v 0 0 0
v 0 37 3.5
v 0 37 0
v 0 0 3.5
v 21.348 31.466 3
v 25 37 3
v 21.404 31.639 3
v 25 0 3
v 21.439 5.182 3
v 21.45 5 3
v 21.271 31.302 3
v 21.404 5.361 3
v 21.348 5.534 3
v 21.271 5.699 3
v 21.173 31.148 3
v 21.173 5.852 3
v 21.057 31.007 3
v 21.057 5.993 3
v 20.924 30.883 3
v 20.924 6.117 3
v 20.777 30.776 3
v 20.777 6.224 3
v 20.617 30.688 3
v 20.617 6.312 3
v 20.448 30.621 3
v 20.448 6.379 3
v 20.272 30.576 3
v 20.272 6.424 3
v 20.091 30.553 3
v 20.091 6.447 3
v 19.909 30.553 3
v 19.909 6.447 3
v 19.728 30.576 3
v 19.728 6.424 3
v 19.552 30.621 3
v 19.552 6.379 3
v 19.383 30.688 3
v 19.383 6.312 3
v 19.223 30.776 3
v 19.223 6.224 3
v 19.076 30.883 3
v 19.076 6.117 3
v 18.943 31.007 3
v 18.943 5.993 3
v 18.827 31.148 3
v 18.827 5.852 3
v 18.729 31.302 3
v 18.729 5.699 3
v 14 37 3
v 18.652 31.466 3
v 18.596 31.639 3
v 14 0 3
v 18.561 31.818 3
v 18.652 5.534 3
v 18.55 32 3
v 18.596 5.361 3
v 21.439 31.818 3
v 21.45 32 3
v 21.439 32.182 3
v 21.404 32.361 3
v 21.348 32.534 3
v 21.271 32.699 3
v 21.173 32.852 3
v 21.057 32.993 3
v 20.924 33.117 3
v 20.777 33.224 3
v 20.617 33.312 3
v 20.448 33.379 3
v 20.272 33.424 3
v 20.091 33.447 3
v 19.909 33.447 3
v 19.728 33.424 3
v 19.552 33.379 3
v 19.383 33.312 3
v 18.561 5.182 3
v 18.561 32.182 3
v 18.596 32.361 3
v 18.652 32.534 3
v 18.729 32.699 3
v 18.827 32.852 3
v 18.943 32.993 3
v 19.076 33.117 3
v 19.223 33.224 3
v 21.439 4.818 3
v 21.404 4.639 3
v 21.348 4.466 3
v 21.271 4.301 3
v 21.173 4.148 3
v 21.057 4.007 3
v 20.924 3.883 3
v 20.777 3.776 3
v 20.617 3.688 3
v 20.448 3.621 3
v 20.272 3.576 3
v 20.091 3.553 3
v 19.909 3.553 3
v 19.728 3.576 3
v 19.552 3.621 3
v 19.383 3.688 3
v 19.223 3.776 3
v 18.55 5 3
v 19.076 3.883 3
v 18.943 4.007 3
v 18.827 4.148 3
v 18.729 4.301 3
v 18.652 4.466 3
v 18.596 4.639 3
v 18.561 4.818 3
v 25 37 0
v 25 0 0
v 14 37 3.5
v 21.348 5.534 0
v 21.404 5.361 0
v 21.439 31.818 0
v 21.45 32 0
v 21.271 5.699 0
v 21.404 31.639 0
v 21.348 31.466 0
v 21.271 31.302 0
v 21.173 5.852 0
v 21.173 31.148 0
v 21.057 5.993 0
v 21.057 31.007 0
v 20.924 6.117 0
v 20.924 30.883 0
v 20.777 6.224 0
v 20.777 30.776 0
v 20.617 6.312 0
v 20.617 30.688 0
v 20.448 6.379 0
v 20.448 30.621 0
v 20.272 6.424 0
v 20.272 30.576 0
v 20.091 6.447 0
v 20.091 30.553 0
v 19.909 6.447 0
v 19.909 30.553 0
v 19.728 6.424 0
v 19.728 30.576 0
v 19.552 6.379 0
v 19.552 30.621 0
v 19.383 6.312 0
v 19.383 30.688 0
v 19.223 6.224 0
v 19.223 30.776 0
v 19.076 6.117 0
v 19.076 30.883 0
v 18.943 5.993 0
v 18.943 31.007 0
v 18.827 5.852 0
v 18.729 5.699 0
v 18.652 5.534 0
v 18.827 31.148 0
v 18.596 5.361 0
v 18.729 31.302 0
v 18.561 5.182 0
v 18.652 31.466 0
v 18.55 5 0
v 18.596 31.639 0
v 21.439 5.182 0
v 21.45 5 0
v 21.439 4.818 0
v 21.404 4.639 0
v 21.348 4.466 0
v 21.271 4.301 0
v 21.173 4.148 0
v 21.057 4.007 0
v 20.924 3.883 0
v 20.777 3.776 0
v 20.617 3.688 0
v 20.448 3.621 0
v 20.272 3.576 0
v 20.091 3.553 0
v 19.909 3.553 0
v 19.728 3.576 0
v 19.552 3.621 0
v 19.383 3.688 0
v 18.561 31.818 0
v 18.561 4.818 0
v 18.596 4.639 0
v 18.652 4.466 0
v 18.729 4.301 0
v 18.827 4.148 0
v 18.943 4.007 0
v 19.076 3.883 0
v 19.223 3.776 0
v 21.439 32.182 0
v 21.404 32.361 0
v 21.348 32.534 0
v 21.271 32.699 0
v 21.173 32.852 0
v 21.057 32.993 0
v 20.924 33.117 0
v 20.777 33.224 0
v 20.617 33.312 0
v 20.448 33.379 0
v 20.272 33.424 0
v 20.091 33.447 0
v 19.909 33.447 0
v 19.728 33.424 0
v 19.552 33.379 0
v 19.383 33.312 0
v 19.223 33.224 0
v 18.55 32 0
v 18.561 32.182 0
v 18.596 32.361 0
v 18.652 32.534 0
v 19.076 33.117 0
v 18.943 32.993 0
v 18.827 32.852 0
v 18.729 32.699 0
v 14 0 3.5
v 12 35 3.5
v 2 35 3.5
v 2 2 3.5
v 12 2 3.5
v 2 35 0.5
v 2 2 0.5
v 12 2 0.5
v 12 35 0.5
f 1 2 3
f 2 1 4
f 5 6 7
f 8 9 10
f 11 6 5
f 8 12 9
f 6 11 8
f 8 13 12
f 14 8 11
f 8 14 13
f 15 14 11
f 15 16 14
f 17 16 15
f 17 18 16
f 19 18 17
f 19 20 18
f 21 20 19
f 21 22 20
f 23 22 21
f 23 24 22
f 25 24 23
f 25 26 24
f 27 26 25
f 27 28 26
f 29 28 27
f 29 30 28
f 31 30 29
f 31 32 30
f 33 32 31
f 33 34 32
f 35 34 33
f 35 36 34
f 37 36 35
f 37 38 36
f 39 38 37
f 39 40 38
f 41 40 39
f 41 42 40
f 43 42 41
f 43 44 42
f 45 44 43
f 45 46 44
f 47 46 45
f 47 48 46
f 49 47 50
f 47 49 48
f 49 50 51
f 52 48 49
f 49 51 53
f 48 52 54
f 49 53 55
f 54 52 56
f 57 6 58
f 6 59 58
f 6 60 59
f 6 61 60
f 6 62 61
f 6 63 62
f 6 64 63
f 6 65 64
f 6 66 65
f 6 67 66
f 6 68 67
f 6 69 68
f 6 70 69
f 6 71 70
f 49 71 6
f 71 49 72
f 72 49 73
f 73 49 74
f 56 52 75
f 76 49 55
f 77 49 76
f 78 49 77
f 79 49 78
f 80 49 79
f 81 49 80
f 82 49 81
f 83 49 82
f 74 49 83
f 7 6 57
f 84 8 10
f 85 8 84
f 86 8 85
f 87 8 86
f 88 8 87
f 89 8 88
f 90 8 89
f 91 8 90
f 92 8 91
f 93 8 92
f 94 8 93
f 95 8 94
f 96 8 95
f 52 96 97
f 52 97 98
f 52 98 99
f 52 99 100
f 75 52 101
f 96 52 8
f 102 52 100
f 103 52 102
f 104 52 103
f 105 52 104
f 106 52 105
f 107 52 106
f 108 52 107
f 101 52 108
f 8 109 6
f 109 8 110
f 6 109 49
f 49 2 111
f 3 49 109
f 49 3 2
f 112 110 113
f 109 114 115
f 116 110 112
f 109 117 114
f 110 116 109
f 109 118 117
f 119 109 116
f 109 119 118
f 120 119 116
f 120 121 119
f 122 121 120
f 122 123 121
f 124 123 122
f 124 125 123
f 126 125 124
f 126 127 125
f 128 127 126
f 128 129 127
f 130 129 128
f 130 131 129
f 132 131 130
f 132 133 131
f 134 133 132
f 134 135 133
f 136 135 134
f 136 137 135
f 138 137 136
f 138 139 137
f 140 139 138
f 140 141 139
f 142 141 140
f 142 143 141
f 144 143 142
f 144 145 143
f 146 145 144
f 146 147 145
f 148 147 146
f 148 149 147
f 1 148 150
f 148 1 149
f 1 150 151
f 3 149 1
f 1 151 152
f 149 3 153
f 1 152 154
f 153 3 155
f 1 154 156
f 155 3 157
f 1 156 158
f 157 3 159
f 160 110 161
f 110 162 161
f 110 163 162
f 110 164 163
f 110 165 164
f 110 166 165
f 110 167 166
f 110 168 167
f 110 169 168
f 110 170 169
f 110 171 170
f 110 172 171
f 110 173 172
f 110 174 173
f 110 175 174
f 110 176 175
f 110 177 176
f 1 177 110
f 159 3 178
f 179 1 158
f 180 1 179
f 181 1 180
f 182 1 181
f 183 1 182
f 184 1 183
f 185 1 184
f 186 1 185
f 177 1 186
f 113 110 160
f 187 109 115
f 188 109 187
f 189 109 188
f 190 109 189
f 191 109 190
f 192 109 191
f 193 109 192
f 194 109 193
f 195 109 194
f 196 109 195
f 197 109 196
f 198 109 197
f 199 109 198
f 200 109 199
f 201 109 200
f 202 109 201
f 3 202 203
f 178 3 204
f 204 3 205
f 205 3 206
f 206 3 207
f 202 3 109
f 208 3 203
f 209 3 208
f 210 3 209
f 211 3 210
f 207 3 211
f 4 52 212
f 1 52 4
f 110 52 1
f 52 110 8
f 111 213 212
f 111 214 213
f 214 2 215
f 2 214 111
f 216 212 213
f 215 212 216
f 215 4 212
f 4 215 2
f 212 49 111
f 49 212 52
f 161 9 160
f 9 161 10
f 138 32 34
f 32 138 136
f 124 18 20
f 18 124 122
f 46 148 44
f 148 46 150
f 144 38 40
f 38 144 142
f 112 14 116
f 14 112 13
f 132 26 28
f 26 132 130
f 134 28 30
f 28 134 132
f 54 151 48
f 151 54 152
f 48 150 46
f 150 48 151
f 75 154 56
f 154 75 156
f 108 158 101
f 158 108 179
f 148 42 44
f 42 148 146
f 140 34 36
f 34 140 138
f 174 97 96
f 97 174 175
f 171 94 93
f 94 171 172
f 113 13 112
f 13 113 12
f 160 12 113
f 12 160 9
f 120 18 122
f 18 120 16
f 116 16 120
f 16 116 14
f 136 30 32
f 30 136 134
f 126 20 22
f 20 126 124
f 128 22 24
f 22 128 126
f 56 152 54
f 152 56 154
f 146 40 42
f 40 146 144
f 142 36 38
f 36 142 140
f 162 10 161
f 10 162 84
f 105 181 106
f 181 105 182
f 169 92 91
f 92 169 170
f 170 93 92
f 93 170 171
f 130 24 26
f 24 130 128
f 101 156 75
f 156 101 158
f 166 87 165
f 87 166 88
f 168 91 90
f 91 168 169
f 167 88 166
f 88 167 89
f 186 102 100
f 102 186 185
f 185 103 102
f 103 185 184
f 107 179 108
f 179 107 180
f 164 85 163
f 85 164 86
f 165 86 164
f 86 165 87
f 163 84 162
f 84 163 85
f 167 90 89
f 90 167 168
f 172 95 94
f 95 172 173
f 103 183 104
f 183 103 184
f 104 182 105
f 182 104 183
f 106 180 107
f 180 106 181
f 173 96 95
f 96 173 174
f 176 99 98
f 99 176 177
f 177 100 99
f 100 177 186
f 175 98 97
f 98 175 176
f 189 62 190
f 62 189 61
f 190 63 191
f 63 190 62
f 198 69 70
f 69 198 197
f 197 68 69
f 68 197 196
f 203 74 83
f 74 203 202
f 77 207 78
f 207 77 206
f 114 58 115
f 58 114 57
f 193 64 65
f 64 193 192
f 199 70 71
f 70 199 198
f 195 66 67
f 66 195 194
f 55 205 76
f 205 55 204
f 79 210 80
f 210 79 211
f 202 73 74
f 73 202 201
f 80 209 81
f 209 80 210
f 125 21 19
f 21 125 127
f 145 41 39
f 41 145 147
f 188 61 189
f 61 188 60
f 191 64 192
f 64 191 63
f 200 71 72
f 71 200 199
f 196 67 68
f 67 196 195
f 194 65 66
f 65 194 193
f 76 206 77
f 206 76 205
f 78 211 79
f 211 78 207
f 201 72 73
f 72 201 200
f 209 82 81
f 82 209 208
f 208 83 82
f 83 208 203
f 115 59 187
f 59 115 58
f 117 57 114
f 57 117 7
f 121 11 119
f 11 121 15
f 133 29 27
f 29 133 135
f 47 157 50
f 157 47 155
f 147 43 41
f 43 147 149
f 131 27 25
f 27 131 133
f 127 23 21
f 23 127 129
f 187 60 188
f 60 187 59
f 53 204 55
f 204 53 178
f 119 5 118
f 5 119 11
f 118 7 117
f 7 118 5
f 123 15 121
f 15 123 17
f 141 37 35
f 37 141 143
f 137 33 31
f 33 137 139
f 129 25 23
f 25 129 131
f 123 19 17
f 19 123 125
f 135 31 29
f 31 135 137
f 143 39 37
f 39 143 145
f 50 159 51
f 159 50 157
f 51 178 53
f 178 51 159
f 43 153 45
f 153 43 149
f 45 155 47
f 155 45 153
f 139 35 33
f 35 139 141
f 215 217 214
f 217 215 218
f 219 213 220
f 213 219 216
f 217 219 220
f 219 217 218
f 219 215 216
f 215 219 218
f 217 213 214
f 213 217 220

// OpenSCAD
// file: ../library_deh/mag_mount.scad
/* mag_mount.scad

 * ****** Stud magnets ******
16 mm 
http://www.kjmagnetics.com/proddetail.asp?prod=MM-C-16
    Dimensions:
        D=16mm (0.63")
        M=4mm (0.16") (M4 Coarse Male threaded stud)
        H=13mm (0.51")
        h=5mm (0.20")
    Material: NdFeB, Grade N38
    Plating/Coating: Ni-Cu-Ni (Nickel)
    Magnetization Direction: Axial (Poles on Flat Ends)
    Weight: 0.26 oz. (7.37 g)
    Pull Force: 12.1 lbs
    Surface Field: N/A
    Brmax: 12,600 Gauss
    BHmax: 38 MGOe
   $2.49
*/
// Measured dimensions
 mag_thick = 4.82;	    // Magnet thickness (base to shell top)
 mag_shell_dia = 16.0;	    // Magnet shell OD
 mag_shell_flat_dia = 11;   // Dia of flat of magent
 mag_stud_dia = 2.8;        // Dia of mounting magnet studs (4-40)
 mag_stud_len = 8.0;        // Height of stud from magnet back
 mag_washer_thick = 1.1;    // Thickness of washer
 mag_nut_thick = 2.4;       // Stud nut (M3) thickness
 mag_nut_hex_flat = 5.41;   // Nut across flats
 mag_nut_hex_peak = 6.20;   // Nut across peaks (also dia of nut)
 mag_washer_dia = 7.1; // 9.5;      // Diameter of washer for magnet stud
 mag_washer_dia_extra = 2;  // Washer slop

/*
http://www.kjmagnetics.com/proddetail.asp?prod=MM-C-20


    Dimensions:
        D=20mm (0.79")
        M=4mm (0.16") (M4 Coarse Male threaded stud)
        H=15mm (0.59")
        h=7mm (0.28")
    Material: NdFeB, Grade N38
    Plating/Coating: Ni-Cu-Ni (Nickel)
    Magnetization Direction: Axial (Poles on Flat Ends)
    Weight: 0.53 oz. (15.0 g)
    Pull Force: 28.7 lbs
    Surface Field: N/A
    Brmax: 12,600 Gauss
    BHmax: 38 MGOe

  $3.14
*/
 mag20_thick = 7.11;	    // Magnet thickness (base to shell top)
 mag20_shell_dia = 20.2;    // Magnet shell OD
 mag20_stud_dia = 4.53;     // Dia of mounting magnet stud at base
 mag20_stud_len = 7.75;       // Height of stud from magnet back
 mag20_washer_thick = 0.85;    // Thickness of washer
 mag20_nut_thick = 2.93;       // Nut for stud thickness
 mag20_washer_dia = 8.68;      // Diameter of washer for magnet stud
 mag20_washer_dia_extra = 2;  // Washer slop

/*
http://www.kjmagnetics.com/proddetail.asp?prod=MM-C-25

    Dimensions:
        D=25mm (0.98")
        M=5mm (0.20") (M5 Coarse Male threaded stud)
        H=17mm (0.67")
        h=8mm (0.32")
    Material: NdFeB, Grade N38
    Plating/Coating: Ni-Cu-Ni (Nickel)
    Magnetization Direction: Axial (Poles on Flat Ends)
    Weight: 0.92 oz. (26.1 g)
    Pull Force: 48.5 lbs
    Surface Field: N/A
    Brmax: 12,600 Gauss
    BHmax: 38 MGOe
  $4.20
*/
// $$$$$ INCOMPLETE $$$$$$
 mag25_thick = 4.82;	    // Magnet thickness (base to shell top)
 mag25_shell_dia = 16.0;	    // Magnet shell OD
 mag25_stud_dia = 2.8;        // Dia of mounting magnet studs (4-40)
 mag25_stud_len = 7.95;       // Height of stud from magnet back
 mag25_washer_thick = 1.1;    // Thickness of washer
 mag25_nut_thick = 2.4;       // Nut for stud thickness
 mag25_washer_dia = 9.5;      // Diameter of washer for magnet stud
 mag25_washer_dia_extra = 2;  // Washer slop

// Cylindrical magnets
mag_cyl_dia = 6.5; 
mag_cyl_ht = 5.05;
// file: ../library_deh/ridged_screw_hole.scad
/*
file: ridged_screw_hole.scad
2018 01 18
*/
/*
All results are translated so that inside edges of the ridges are aligned with the axis, so a 
square or rectangle will have the corner centered on the x,y origin.

Modules----
module corner_ridged_rectangle(xlen,ylen,zlen,rht,rwdx,rwdy)
module corner_ridged_square(slen,zlen,rht,rwds)
module corner_ridged_square_w_screw(slen,zlen,rht,rwds,scd1,scd2,sch,scofx,scofy)
module corner_ridged_rectangle_w_screw(xlen,ylen,zlen,rht,rwdx,rwdy,scd1,scd2,sch,scofx,scofy)
module ridged_rectangular_w_clip(xlen,ylen,zlen,rht,rwdy,clen)
*/

include <deh_shapes.scad>

/*  ***** corner_ridged_rectangle *****
* xlen = x axis direction length
* ylen = y axis direction length
* zlen = z axis, height to ledge
* rht  = ridge thickness
* rwdx = ridge width, x direction
* rwdy = ridge width, y direction
*/
module corner_ridged_rectangle(xlen,ylen,zlen,rht,rwdx,rwdy)
{
    cx = rwdx; cy = -rwdy;
    translate([-cx,cy,0])
    {
        difference()
        {
            union()
            {
                zht1 = (zlen+rht);
                cube([xlen,ylen,zht1],center=false);
            }
            union()
            {
                zht2 = rht+0.1;
                translate([rwdx,rwdy,zlen])
                    cube([xlen,ylen,zht2],center=false);
            }
        }
    }        
}

/*  ***** corner_ridged_square_w_screw *****
* slen = length x & y axis directions
* zlen = z axis, height to ledge
* rht  = ridge thickness
* rwds = ridge width, x & y directions
*/
module corner_ridged_square(slen,zlen,rht,rwds)
{
    corner_ridged_rectangle(slen,slen,zlen,rht,rwds,rwds);
}

/*  ***** corner_ridged_square *****
* slen = length x & y axis directions
* zlen = z axis, height to ledge
* rht  = ridge thickness
* rwds = ridge width, x & y directions
* scd1 = screw diameter at top
* scd2 = screw diameter at bottom of screw
* sch  = screw hole height
* scofx = screw hole center offset from inside ridge corner, x
* scofy = screw hole center offset from inside ridge corner, y
*/
        //corner_ridged_square_w_screw(  10,  5, 1.5,  4,  3.2,  1.2,  3,  -1.4,  -1.4  ); // test
module corner_ridged_square_w_screw(slen,zlen,rht,rwds,scd1,scd2,sch,scofx,scofy)
{
    difference()
    {
        corner_ridged_square(slen,zlen,rht,rwds);
        
        translate([0,0,zlen-sch+rht+.01])
            ridge_screw_hole_square(slen,rwds,rwds,scd1,scd2,sch,scofx,scofy);
    }
}

/*  ***** corner_ridged_rectangle_w_screw *****
* xlen = x axis direction length
* ylen = y axis direction length
* zlen = z axis, height to ledge
* rht  = ridge thickness
* rwds = ridge width, x & y directions
* scd1 = screw diameter at top
* scd2 = screw diameter at bottom of screw
* sch  = screw hole height
* scofx = screw hole center offset from inside ridge corner, x
* scofy = screw hole center offset from inside ridge corner, y
*/
//translate([20,0,0])
//                                xlen ylen zlen rht dx dy   scd1 scd2  sch  scofx scofy
//corner_ridged_rectangle_w_screw(6,  12,    5, 1.5, 5, 4,    3.2, 2.2,   4,  -1.5,  -2.0); // Test
module corner_ridged_rectangle_w_screw(xlen,ylen,zlen,rht,rwdx,rwdy,scd1,scd2,sch,scofx,scofy)
{
    difference()
    {
        corner_ridged_rectangle(xlen,ylen,zlen,rht,rwdx,rwdy);
        
        translate([0,0,zlen-sch+rht+.01])
            ridge_screw_hole_rectangle(xlen,ylen,rwdx,rwdy,scd1,scd2,sch,scofx,scofy);
    }
}
/*
* xlen = x axis direction length
* ylen = y axis direction length
* rwdx = ridge width, x directions
* rwdy = ridge width, y directions
* scd1 = screw diameter at top
* scd2 = screw diameter at bottom of screw
* sch  = screw hole height
* scofx = screw hole center offset, x
* scofy = screw hole center offset, y
*/
module ridge_screw_hole_rectangle(xlen,ylen,rwdx,rwdy,scd1,scd2,sch,scofx,scofy)
{
    hx =  scofx;
    hy =   scofy;
echo("R","rwdx",rwdx,"rwdy",rwdy);
echo("R","scofx",scofx,"scofy",scofy,"hy",hy,"hx",hx);
    translate([hx,hy,0])
        cylinder(d1=scd2,d2=scd1,h=sch,center=false,$fn=25);    
}

module ridge_screw_hole_square(slen,rwdx,rwdy,scd1,scd2,sch,scofx,scofy)
{
    ridge_screw_hole_rectangle(slen,slen,rwdx,rwdy,scd1,scd2,sch,scofx,scofy);
}

/*
pst_ldg = 6 + bfthick;	// Height of pc board ledge from bottom
pst_wid = 3;	// Width of post
pcb_thick = 2.0;	// Thickness of pcb
clip_ht = 3;
pst_w2 = 1;	// Width where pcb contacts edge
*/

/*  ***** ridged_rectangular_w_clip *****
* xlen = x axis direction length
* ylen = y axis direction length
* zlen = z axis, height to ledge
* rht  = height of ridge (pcb thickness)
* rwdy = ridge width, y direction
* clen = clip length
* Orientation: ridge runs in y-axis direction 
* Note: ledge with is (xlen - rwdy)
*/
//         ridged_rectangular_w_clip(  3,  15,   5, 1.5, 1,   3 );	// Test
module ridged_rectangular_w_clip(xlen,ylen,zlen,rht,rwdy,clen)
{
	corner_ridged_rectangle(xlen,ylen,zlen,rht,rwdy,0);

	// Clip overhang
	cofsx = clen - rwdy;	// Offsets for wedge
 	cofsy = ylen;
	cofsz = zlen+rht+clen - rwdy;
	translate([cofsx,cofsy,cofsz])
		rotate([0,180,0])
		rotate([0,0,-90])
		wedge(ylen,clen,clen);

}
// file: ../library_deh/fasteners.scad
/* ***** fasteners.scad *****
 * library of measurements of 
 *   screws, washers, etc.
 * date: 20170512
*/

// 6-32
screw_dia_s632 = 3.35;	// shaft diameter
screw_dia_ph632 = 6.62;	// pan-head diameter
screw_dia_pht632 = 2.2;	// pan-head thickness
nut_dia_632 = 8.77 ;	// peak-peak 
nut_thick_632 = 2.77;	// thickess

// 4-40
screw_dia_s440 = 2.72;	// shaft diameter
screw_dia_s440_z = 1.90; // Dia at tip
screw_dia_ph = 5.42;	// pan-head diamter
screw_dia_pht = 1.7;	// pan-head thickness
nut_dia_440 =  7.12;	// peak-peak
nut_thick_440 = 2.41;	// thickess
nut_dia_440L = 8.88;	// Lock nut diameter
nut_thick_440L = 4.6;	// Lock nut thickness

// 6-20 self-tap
screw_dia_sod620 = 3.5;	// Outer diameter of threads
screw_dia_sth620 = 2.6;	// Self tap hole
screw_dia_pht = 6.7;	// pan-head diameter

// #4
washer_od_4 = 8.0;		// Washer outer diameter
washer_id_4 = 3.2;		// Washer inner diameter
washer_thick_4 = .94;	// Washer thickness

// #6
washer_od_6 = 9.46;	// Washer outer diameter	
washer_id_6 = 4.04;	// Washer inner diameter
washer_thick = 1.04;	// Washer thickness
washer_thick_6 = 1.04;	// Washer thickness

// M3
nut_dia_M3 = 6.5; 
nut_flat_M3 = 5.43;
nut_thick_M3 = 2.29;
washer_od_M3 = 6.9;	// Washer outside diameter
washer_id_M3 = 3.22;	// Washer inside (hole) diameter
washer_thick_M3 = .57;	// Washer thickness

// M4
nut_dia_M4 = 7.86;
nut_flat_M4 = 6.75;
nut_thick_M4 = 2.96;

// #2 6 self drilling Philips Screw (MSC: 124751)
screw_dia1_ss6 = 3.5;	// Self-tapping: dia at threads
screw_dia2_ss6 = 2.8;	// Self-tapping: dia at drilling end
screw_dia_he_ss6 = 6.7;	// Self-tapping: dia of pan head
// file: ../library_deh/Plano_frame.scad
/* File: Plano_frame.scad
 * Plano enclosure PC board fame
 * Author: deh
 * Latest edit: 201700701
 */

include <mag_mount.scad>

 $fn=100;
 
 // Inside dimensions of Plano box
 plano_len          = 152.5;   // flat-flat
 plano_wid          =  76.0;   // flat-flat

base_len = plano_len;
base_wid = plano_wid;
base_ht  = 3.2;		// Thickness of base plate
base_rnd = 10;	// Base plate corner rounding radius
 
 // Stud magnet relative postions.
 // Bottom magnet is on center-line and x,y reference is 0,0
 plano_mag_top_x  = 30.5;   // Top pair x +/- from center-line (C/L)
 plano_mag_top_y  = 138.69; // Top pair y from bottom magnet hole
 plano_mag_top_ofs = 8;    // Top mags to top edge of PC board max
 // Bottom mag distance from bottom of plano wall
 plano_mag_bot_ofs = plano_len - plano_mag_top_ofs - plano_mag_top_y;
 
 
 plano_offs_mag_y   = 4;    // Offset from edge for magnet hole
 plano_offs_mag_x   = 4;    // Offset from edge for magnet hole
 plano_ctr_y    = (plano_len/2);
 plano_ctr_x    = (plano_wid/2);
  
 plano_mag_stud = mag_stud_dia;  // Dia of mounting magnet studs (4-40)
 plano_mag_stud_len = mag_stud_len; // Height of stud from magnet back
 mag_washer_dia = 9.5;      // Diameter of washer for magnet stud
 mag_washer_thick = 1.1;    // Thickness of washer
 mag_washer_dia_extra = 1;  // Washer slop
 plano_web_thick = 2;   // Plano box thickness where stud is 
 mag_wash_recess_dia = mag_washer_dia + mag_washer_dia_extra;

 // Thickness of base for washer recess
 mag_stud_z = (mag_washer_thick +mag_nut_thick + plano_web_thick);
 mag_wash_recess_z = plano_mag_stud_len - mag_stud_z;    

 // Diameter of recess
 mag_wash_recess_dia = mag_washer_dia + mag_washer_dia_extra;

 // POD board
 pod_wid = 76.0;  // Overall width
 pod_len = 89.4;  // Overall length

// Discovery board
 dis_wid = 65.4;  // Overall width
 dis_len = 95.8;  // Overall length
 
// RJ45 connector on POD board
 RJ_offset=24.8; // Side of RJ45 jack from edge
 RJ_wid=15;      // Width of RJ 45 jack
 RJ_depth=14.5;  // Bottom of POD pc board edge to bottom/back of RJ45
 RJ_length=14;  // Front-Back length

// Cutout in base for RJ45 with plug
 RJ_slop = 4;
 RJ_plug_len = 14; // RJ plug protrudes beyond jack
 RJ_cutout_width = RJ_wid + RJ_slop;
 RJ_cutout_length = RJ_length + RJ_slop + RJ_plug_len;
 RJ_cutout_ofs = pod_wid/2 - (RJ_offset + RJ_wid);
 
 // CAN sub-board module
 sub_wid      = 33.75;  // Overall width
 sub_len      = 62.9;   // Overall lengh
 sub_mtg_wid  = 26.6;   // Between mounting holes, width
 sub_mtg_len  = 57.0;   // Between mounting holes, length 

 // Switcher module
 sw_wid =   20.3;   // Overall width
 sw_len =   41.2;   // Overall length
 sw_mtg_off_out_y   = 5.56; // Offset from edge "out" mounting hole 
 sw_mtg_off_out_x   = 2.7;  // Offset from edge "out" mounting hole 
 sw_mtg_off_in_y    = 3.1;  // Offset from edge "in" mounting hole
 sw_mtg_off_in_x    = 6.0;  // Offset from edge "in" mounting hole
 
 // RJ jack (load-cell jack)
 rj_grv =  4.0;  // Groove Depth 
 rj_ht  = 14.2;  // Groove Length
 rj_wid = 14.2;  // Groove Height
 
 // Post ridge
 p_ridge = 1.5; // Height of ridge to position PC board on post
 p_offset = 2;  // Offset of ridge from edge of post
 
 // Pod post
 pod_post_ht = (RJ_depth + 1);
 pod_post_y = 9;    // Length in "y" (long/length) box direction)
 pod_post_x = 6;    // Length in "x" (short/width) box direction)
 pod_post_q = 2.0;  // Width of ridge
 pod_post_s = 2.5;    // Screw hole dia
 pod_post_sd = 5;   // Screw hole depth

 // Pod board clip
 pcwide = 4;        // Width of clip post
 pcleng = 50;       // X axis direction length
 pc_y = base_len;   // y positioning

 iso_len   = 50.2;	// Length: two RJ 45 jacks parallel
 iso_wid   = 46.3;      // Width
 iso_thick = 1.6;	// PC board thickness
 iso_slop  = 0.0;	// Allowance for board variation
 iso_lip   = 1.2;	// Ledge width for board seating
 iso_ridge_ht = 1.55;	// Ridge ht for seat
 iso_ridge_wid= 1.5;	// Ridge width for seat
 iso_post_ht = 3.6;//6.0;	// Height of lip above base

 iso_osd_y = iso_wid + iso_slop - 0.5; // Board y
 iso_osd_x = iso_len + iso_slop - 0.5; // Board x
 iso_side  = iso_lip + iso_ridge_wid;
// file: ../library_deh/deh_shapes.scad
/* **** deh_shapes.scad *****
   * Library of useful shapes
   * 20170512
*/


/*  ***** tubedeh *****
d1 = outside diameter
d2 = inside diameter
ht = height
reference is center of tube, bottom
*/
module tubedeh(d1,d2,ht)
{
   difference()
   {
     cylinder(d = d1, h = ht, center = false);
     cylinder(d = d2, h = ht + .001, center = false);
   }
}
/* ***** rounded_bar *****
 * rectangular bar with rounded end
bar with one end rounded
rounded_bar(d, l, h)
d = diameter of rounded end, and width of bar
l = length of bar from center of rounded end to end
h = thickness (height) of bar
reference is center of rounded end, bottom
*/
module rounded_bar(d, l, h)
{
    // Rounded end
    cylinder(d = d, h = h, center = false);
    // Bar
    translate([0, -d/2, 0])
       cube([l, d, h],false);
}
/* ***** eyebar *****
 * rounded bar with hole in rounded end
 * module eye_bar(d1, d2, len, ht)
d1 = outside diameter of rounded end, and width of bar
d2 = diameter of hole in end of bar
*/
module eye_bar(d1, d2, len, ht)
{
   difference()
   {   
      rounded_bar(d1,len,ht);
      cylinder(d = d2, h = ht + .001, center = false);
   }
}
/* ***** rounded_rectangle ******
rounded_rectangle(l,w,h,rad);
l = length (x direction)
w = width (y direction)
h = thickness (z direction)
rad = radius of corners
reference = center of rectangle x,y, bottom
*/
module rounded_rectangle(l,w,h,rad)
{
  translate([-(l-rad)/2,-(w-rad)/2,0])
  {
    // Four rounded edges
    translate([0,0,0])
      rounded_bar(rad*2,l-rad,h);
    translate([l-rad,0,0])
      rotate([0,0,90])
      rounded_bar(rad*2,w-rad,h);
    translate([l-rad,w-rad,0])
      rotate([0,0,180])
      rounded_bar(rad*2,l-rad,h);
    translate([0,w-rad,0])
      rotate([0,0,-90])
      rounded_bar(rad*2,w-rad,h);
    // Fill in center
    translate([0,0,0])
      cube([l-rad + .01,w-rad + .01,h],false);
  }
}

/* ***** rounded rim *****
module rounded_rim(l,w,h,rad,tk);
l = length (inside, x direction)
w = width (inside, y direction)
h = thickness (z direction)
rad = radius of corners
tk = thickness of rim wall
*/
module rounded_rim(l,w,h,rad,tk)
{
  difference()
  {
    rounded_rectangle(l+2*tk,w+2*tk,h,rad);
    rounded_rectangle(l, w, h, rad);
  }
}

/* ***** wedge *****
l = length
w = width
h = height/thickness
*/
 module wedge(l, w, h)
 {
   polyhedron(
      points=[[0,0,0], [l,0,0], [l,w,0], [0,w,0], [0,w,h], [l,w,h]],
       faces=[[0,1,2,3],[5,4,3,2],[0,4,5,1],[0,3,4],[5,2,1]] );
 }
/* ***** rounded_triangle *****
 * l1 = side 1
 * l2 = side 2
 * l3 = side 3
 * h  = height/thickness
 * rad = radius of rounded corners
 */
module rounded_triangle(l1,l2,l3,h,rad)
{
  // Compute rotation angles
  al3 = acos((l1*l1 + l2*l2 - l3*l3)/(2 * l1 * l2));
  al1 = acos((l2*l2 + l3*l3 - l1*l1)/(2 * l2 * l3));
  al2 = acos((l3*l3 + l1*l1 - l2*l2)/(2 * l3 * l1));
  // Setup bars for edges
  translate([0,0,0])
    rotate([0,0,0])
      rounded_bar(rad,l3,h);
  translate([l3,0,0])
    rotate([0,0,180-al2])
      rounded_bar(rad,l1,h);
  rotate([0,0,al1])
    translate([l2,0,0])
      rotate([0,0,180])
        rounded_bar(rad,l2,h);
  // Fill in center
    triangle(l1,l2,l3,h);
}
/* ***** triangle *****
 * l1 = side 1
 * l2 = side 2
 * l3 = side 3
 * h  = height/thickness
 */
module triangle(l1,l2,l3,h)
{
  // Compute rotation angle
  al1 = acos((l2*l2 + l3*l3 - l1*l1)/(2 * l2 * l3));
  
  linear_extrude(height = h)
  polygon(points = [[0,0],[l3,0],[l2*cos(al1),l2*sin(al1)]]);
}
/* ***** chamfered hole *****
 * Punch hole with chamfer on one end
 * d1 = main hole diameter
 * d2 = hole diameter at chamfered end
 * ht1 = height of whole hole
 * ht2 = depth of  chamfer
*/
module chamfered_hole(d1,d2,ht1,ht2)
{
   rotate_extrude(convexity = 10)
     polygon(points = [[0,0],[d1/2,0],[d1/2,ht1-ht2],[d2/2,ht1],[0,ht1]]);

}

/* ***** fillet *****
 * r = radius of fillet
 * l = length of fillet
 fillet (r,l);
*/
module fillet(r,l)
{
   difference()
   {
     union()
     {
       cube([2*r,2*r,l]);
     }
     union()
     {
       translate ([r,r,0])
           cylinder(d = 2*r + 0.1, h = l, center = false);
       translate([r,0,0])
           cube([r,2*r,l],center = false);
       translate([0,r,0])
           cube([2*r,r,l],center = false);
     }
   }
}
/* ***** circular chamfer *****
 * d = outer diameter
 * rad = chamfer radius
 * circular_chamfer(d, rad);
*/
module circular_chamfer(d, rad)
{
  ofs = (d/2 - rad);
  rotate_extrude()
  translate([ofs,0])
   difference()
   {
     union()
     {
       square(size = [rad, rad]);
     }
     union()
     {
       translate ([0,rad ])
           circle(d = 2*rad + 0.1);
     }
   }
}
module circular_inner_chamfer(d, rad)
{
  circular_chamfer(d, rad);
} 

/* ***** circular chamfer *****
 * d = inner diameter
 * rad = chamfer radius
 * circular_chamfer(d, rad);
*/
module circular_outer_chamfer(d, rad)
{
  ofs = (d/2 - rad);
  rotate_extrude()
  translate([ofs,0])
   difference()
   {
     union()
     {
       square(size = [rad, rad]);
     }
     union()
     {
       translate ([rad,rad ])
           circle(d = 2*rad + 0.1);
     }
   }
}
// main file
/* File: plno_gps.scad
 * Base for RTV'ing gps module and mounting in Plano enclosure
 * Author: deh
 * Latest edit: 20180512
 */

include <../library_deh/deh_shapes.scad>
include <../library_deh/Plano_frame.scad>
include <../library_deh/fasteners.scad>
include <../library_deh/ridged_screw_hole.scad>

 $fn=50;

big = 10;	// Big z in direction 

pk_wid = 33;	// Inside y direction of pocket
pk_len = 10;	// Inside x direction of pocket
pk_ht  = 3;		// Inside depth of pocket
pk_thx = 2;		// Pocket wall thickness
pk_bot = 0.5;	// Thickness of bottom of pocket
pk_z   = pk_ht + pk_bot;
pk_x   = pk_len + 2*pk_thx;
pk_y   = pk_wid + 2*pk_thx;

bs_thx = 3; 	// Base thickness
bs_len = 25;	// Length x direction
bs_wid = pk_wid + 2 * pk_thx;
bs_hole1_x = 20;
bs_hole1_y = 5;
bs_hole2_x = 20;
bs_hole2_y = bs_wid - 5;
bs_hole1_d = 2.9;

module bs_hole(len,wid)
{
	translate([len,wid,0])
		cylinder(d=bs_hole1_d,h=big,center=false);
}

module base()
{
	difference()
	{
		union()
		{
			cube([bs_len,bs_wid,bs_thx],center=false);
			cube([pk_x,pk_y,pk_z],center=false);
		}

		union()
		{
			bs_hole(bs_hole1_x,bs_hole1_y);
			bs_hole(bs_hole2_x,bs_hole2_y);

			translate([pk_thx,pk_thx,pk_bot])
				cube([pk_len,pk_wid,big],center=false);

			translate([0,0,pk_z])
				cube([pk_x,pk_y,big],center=false);
		}
	}
}


module total()
{
    base();
}
total();
